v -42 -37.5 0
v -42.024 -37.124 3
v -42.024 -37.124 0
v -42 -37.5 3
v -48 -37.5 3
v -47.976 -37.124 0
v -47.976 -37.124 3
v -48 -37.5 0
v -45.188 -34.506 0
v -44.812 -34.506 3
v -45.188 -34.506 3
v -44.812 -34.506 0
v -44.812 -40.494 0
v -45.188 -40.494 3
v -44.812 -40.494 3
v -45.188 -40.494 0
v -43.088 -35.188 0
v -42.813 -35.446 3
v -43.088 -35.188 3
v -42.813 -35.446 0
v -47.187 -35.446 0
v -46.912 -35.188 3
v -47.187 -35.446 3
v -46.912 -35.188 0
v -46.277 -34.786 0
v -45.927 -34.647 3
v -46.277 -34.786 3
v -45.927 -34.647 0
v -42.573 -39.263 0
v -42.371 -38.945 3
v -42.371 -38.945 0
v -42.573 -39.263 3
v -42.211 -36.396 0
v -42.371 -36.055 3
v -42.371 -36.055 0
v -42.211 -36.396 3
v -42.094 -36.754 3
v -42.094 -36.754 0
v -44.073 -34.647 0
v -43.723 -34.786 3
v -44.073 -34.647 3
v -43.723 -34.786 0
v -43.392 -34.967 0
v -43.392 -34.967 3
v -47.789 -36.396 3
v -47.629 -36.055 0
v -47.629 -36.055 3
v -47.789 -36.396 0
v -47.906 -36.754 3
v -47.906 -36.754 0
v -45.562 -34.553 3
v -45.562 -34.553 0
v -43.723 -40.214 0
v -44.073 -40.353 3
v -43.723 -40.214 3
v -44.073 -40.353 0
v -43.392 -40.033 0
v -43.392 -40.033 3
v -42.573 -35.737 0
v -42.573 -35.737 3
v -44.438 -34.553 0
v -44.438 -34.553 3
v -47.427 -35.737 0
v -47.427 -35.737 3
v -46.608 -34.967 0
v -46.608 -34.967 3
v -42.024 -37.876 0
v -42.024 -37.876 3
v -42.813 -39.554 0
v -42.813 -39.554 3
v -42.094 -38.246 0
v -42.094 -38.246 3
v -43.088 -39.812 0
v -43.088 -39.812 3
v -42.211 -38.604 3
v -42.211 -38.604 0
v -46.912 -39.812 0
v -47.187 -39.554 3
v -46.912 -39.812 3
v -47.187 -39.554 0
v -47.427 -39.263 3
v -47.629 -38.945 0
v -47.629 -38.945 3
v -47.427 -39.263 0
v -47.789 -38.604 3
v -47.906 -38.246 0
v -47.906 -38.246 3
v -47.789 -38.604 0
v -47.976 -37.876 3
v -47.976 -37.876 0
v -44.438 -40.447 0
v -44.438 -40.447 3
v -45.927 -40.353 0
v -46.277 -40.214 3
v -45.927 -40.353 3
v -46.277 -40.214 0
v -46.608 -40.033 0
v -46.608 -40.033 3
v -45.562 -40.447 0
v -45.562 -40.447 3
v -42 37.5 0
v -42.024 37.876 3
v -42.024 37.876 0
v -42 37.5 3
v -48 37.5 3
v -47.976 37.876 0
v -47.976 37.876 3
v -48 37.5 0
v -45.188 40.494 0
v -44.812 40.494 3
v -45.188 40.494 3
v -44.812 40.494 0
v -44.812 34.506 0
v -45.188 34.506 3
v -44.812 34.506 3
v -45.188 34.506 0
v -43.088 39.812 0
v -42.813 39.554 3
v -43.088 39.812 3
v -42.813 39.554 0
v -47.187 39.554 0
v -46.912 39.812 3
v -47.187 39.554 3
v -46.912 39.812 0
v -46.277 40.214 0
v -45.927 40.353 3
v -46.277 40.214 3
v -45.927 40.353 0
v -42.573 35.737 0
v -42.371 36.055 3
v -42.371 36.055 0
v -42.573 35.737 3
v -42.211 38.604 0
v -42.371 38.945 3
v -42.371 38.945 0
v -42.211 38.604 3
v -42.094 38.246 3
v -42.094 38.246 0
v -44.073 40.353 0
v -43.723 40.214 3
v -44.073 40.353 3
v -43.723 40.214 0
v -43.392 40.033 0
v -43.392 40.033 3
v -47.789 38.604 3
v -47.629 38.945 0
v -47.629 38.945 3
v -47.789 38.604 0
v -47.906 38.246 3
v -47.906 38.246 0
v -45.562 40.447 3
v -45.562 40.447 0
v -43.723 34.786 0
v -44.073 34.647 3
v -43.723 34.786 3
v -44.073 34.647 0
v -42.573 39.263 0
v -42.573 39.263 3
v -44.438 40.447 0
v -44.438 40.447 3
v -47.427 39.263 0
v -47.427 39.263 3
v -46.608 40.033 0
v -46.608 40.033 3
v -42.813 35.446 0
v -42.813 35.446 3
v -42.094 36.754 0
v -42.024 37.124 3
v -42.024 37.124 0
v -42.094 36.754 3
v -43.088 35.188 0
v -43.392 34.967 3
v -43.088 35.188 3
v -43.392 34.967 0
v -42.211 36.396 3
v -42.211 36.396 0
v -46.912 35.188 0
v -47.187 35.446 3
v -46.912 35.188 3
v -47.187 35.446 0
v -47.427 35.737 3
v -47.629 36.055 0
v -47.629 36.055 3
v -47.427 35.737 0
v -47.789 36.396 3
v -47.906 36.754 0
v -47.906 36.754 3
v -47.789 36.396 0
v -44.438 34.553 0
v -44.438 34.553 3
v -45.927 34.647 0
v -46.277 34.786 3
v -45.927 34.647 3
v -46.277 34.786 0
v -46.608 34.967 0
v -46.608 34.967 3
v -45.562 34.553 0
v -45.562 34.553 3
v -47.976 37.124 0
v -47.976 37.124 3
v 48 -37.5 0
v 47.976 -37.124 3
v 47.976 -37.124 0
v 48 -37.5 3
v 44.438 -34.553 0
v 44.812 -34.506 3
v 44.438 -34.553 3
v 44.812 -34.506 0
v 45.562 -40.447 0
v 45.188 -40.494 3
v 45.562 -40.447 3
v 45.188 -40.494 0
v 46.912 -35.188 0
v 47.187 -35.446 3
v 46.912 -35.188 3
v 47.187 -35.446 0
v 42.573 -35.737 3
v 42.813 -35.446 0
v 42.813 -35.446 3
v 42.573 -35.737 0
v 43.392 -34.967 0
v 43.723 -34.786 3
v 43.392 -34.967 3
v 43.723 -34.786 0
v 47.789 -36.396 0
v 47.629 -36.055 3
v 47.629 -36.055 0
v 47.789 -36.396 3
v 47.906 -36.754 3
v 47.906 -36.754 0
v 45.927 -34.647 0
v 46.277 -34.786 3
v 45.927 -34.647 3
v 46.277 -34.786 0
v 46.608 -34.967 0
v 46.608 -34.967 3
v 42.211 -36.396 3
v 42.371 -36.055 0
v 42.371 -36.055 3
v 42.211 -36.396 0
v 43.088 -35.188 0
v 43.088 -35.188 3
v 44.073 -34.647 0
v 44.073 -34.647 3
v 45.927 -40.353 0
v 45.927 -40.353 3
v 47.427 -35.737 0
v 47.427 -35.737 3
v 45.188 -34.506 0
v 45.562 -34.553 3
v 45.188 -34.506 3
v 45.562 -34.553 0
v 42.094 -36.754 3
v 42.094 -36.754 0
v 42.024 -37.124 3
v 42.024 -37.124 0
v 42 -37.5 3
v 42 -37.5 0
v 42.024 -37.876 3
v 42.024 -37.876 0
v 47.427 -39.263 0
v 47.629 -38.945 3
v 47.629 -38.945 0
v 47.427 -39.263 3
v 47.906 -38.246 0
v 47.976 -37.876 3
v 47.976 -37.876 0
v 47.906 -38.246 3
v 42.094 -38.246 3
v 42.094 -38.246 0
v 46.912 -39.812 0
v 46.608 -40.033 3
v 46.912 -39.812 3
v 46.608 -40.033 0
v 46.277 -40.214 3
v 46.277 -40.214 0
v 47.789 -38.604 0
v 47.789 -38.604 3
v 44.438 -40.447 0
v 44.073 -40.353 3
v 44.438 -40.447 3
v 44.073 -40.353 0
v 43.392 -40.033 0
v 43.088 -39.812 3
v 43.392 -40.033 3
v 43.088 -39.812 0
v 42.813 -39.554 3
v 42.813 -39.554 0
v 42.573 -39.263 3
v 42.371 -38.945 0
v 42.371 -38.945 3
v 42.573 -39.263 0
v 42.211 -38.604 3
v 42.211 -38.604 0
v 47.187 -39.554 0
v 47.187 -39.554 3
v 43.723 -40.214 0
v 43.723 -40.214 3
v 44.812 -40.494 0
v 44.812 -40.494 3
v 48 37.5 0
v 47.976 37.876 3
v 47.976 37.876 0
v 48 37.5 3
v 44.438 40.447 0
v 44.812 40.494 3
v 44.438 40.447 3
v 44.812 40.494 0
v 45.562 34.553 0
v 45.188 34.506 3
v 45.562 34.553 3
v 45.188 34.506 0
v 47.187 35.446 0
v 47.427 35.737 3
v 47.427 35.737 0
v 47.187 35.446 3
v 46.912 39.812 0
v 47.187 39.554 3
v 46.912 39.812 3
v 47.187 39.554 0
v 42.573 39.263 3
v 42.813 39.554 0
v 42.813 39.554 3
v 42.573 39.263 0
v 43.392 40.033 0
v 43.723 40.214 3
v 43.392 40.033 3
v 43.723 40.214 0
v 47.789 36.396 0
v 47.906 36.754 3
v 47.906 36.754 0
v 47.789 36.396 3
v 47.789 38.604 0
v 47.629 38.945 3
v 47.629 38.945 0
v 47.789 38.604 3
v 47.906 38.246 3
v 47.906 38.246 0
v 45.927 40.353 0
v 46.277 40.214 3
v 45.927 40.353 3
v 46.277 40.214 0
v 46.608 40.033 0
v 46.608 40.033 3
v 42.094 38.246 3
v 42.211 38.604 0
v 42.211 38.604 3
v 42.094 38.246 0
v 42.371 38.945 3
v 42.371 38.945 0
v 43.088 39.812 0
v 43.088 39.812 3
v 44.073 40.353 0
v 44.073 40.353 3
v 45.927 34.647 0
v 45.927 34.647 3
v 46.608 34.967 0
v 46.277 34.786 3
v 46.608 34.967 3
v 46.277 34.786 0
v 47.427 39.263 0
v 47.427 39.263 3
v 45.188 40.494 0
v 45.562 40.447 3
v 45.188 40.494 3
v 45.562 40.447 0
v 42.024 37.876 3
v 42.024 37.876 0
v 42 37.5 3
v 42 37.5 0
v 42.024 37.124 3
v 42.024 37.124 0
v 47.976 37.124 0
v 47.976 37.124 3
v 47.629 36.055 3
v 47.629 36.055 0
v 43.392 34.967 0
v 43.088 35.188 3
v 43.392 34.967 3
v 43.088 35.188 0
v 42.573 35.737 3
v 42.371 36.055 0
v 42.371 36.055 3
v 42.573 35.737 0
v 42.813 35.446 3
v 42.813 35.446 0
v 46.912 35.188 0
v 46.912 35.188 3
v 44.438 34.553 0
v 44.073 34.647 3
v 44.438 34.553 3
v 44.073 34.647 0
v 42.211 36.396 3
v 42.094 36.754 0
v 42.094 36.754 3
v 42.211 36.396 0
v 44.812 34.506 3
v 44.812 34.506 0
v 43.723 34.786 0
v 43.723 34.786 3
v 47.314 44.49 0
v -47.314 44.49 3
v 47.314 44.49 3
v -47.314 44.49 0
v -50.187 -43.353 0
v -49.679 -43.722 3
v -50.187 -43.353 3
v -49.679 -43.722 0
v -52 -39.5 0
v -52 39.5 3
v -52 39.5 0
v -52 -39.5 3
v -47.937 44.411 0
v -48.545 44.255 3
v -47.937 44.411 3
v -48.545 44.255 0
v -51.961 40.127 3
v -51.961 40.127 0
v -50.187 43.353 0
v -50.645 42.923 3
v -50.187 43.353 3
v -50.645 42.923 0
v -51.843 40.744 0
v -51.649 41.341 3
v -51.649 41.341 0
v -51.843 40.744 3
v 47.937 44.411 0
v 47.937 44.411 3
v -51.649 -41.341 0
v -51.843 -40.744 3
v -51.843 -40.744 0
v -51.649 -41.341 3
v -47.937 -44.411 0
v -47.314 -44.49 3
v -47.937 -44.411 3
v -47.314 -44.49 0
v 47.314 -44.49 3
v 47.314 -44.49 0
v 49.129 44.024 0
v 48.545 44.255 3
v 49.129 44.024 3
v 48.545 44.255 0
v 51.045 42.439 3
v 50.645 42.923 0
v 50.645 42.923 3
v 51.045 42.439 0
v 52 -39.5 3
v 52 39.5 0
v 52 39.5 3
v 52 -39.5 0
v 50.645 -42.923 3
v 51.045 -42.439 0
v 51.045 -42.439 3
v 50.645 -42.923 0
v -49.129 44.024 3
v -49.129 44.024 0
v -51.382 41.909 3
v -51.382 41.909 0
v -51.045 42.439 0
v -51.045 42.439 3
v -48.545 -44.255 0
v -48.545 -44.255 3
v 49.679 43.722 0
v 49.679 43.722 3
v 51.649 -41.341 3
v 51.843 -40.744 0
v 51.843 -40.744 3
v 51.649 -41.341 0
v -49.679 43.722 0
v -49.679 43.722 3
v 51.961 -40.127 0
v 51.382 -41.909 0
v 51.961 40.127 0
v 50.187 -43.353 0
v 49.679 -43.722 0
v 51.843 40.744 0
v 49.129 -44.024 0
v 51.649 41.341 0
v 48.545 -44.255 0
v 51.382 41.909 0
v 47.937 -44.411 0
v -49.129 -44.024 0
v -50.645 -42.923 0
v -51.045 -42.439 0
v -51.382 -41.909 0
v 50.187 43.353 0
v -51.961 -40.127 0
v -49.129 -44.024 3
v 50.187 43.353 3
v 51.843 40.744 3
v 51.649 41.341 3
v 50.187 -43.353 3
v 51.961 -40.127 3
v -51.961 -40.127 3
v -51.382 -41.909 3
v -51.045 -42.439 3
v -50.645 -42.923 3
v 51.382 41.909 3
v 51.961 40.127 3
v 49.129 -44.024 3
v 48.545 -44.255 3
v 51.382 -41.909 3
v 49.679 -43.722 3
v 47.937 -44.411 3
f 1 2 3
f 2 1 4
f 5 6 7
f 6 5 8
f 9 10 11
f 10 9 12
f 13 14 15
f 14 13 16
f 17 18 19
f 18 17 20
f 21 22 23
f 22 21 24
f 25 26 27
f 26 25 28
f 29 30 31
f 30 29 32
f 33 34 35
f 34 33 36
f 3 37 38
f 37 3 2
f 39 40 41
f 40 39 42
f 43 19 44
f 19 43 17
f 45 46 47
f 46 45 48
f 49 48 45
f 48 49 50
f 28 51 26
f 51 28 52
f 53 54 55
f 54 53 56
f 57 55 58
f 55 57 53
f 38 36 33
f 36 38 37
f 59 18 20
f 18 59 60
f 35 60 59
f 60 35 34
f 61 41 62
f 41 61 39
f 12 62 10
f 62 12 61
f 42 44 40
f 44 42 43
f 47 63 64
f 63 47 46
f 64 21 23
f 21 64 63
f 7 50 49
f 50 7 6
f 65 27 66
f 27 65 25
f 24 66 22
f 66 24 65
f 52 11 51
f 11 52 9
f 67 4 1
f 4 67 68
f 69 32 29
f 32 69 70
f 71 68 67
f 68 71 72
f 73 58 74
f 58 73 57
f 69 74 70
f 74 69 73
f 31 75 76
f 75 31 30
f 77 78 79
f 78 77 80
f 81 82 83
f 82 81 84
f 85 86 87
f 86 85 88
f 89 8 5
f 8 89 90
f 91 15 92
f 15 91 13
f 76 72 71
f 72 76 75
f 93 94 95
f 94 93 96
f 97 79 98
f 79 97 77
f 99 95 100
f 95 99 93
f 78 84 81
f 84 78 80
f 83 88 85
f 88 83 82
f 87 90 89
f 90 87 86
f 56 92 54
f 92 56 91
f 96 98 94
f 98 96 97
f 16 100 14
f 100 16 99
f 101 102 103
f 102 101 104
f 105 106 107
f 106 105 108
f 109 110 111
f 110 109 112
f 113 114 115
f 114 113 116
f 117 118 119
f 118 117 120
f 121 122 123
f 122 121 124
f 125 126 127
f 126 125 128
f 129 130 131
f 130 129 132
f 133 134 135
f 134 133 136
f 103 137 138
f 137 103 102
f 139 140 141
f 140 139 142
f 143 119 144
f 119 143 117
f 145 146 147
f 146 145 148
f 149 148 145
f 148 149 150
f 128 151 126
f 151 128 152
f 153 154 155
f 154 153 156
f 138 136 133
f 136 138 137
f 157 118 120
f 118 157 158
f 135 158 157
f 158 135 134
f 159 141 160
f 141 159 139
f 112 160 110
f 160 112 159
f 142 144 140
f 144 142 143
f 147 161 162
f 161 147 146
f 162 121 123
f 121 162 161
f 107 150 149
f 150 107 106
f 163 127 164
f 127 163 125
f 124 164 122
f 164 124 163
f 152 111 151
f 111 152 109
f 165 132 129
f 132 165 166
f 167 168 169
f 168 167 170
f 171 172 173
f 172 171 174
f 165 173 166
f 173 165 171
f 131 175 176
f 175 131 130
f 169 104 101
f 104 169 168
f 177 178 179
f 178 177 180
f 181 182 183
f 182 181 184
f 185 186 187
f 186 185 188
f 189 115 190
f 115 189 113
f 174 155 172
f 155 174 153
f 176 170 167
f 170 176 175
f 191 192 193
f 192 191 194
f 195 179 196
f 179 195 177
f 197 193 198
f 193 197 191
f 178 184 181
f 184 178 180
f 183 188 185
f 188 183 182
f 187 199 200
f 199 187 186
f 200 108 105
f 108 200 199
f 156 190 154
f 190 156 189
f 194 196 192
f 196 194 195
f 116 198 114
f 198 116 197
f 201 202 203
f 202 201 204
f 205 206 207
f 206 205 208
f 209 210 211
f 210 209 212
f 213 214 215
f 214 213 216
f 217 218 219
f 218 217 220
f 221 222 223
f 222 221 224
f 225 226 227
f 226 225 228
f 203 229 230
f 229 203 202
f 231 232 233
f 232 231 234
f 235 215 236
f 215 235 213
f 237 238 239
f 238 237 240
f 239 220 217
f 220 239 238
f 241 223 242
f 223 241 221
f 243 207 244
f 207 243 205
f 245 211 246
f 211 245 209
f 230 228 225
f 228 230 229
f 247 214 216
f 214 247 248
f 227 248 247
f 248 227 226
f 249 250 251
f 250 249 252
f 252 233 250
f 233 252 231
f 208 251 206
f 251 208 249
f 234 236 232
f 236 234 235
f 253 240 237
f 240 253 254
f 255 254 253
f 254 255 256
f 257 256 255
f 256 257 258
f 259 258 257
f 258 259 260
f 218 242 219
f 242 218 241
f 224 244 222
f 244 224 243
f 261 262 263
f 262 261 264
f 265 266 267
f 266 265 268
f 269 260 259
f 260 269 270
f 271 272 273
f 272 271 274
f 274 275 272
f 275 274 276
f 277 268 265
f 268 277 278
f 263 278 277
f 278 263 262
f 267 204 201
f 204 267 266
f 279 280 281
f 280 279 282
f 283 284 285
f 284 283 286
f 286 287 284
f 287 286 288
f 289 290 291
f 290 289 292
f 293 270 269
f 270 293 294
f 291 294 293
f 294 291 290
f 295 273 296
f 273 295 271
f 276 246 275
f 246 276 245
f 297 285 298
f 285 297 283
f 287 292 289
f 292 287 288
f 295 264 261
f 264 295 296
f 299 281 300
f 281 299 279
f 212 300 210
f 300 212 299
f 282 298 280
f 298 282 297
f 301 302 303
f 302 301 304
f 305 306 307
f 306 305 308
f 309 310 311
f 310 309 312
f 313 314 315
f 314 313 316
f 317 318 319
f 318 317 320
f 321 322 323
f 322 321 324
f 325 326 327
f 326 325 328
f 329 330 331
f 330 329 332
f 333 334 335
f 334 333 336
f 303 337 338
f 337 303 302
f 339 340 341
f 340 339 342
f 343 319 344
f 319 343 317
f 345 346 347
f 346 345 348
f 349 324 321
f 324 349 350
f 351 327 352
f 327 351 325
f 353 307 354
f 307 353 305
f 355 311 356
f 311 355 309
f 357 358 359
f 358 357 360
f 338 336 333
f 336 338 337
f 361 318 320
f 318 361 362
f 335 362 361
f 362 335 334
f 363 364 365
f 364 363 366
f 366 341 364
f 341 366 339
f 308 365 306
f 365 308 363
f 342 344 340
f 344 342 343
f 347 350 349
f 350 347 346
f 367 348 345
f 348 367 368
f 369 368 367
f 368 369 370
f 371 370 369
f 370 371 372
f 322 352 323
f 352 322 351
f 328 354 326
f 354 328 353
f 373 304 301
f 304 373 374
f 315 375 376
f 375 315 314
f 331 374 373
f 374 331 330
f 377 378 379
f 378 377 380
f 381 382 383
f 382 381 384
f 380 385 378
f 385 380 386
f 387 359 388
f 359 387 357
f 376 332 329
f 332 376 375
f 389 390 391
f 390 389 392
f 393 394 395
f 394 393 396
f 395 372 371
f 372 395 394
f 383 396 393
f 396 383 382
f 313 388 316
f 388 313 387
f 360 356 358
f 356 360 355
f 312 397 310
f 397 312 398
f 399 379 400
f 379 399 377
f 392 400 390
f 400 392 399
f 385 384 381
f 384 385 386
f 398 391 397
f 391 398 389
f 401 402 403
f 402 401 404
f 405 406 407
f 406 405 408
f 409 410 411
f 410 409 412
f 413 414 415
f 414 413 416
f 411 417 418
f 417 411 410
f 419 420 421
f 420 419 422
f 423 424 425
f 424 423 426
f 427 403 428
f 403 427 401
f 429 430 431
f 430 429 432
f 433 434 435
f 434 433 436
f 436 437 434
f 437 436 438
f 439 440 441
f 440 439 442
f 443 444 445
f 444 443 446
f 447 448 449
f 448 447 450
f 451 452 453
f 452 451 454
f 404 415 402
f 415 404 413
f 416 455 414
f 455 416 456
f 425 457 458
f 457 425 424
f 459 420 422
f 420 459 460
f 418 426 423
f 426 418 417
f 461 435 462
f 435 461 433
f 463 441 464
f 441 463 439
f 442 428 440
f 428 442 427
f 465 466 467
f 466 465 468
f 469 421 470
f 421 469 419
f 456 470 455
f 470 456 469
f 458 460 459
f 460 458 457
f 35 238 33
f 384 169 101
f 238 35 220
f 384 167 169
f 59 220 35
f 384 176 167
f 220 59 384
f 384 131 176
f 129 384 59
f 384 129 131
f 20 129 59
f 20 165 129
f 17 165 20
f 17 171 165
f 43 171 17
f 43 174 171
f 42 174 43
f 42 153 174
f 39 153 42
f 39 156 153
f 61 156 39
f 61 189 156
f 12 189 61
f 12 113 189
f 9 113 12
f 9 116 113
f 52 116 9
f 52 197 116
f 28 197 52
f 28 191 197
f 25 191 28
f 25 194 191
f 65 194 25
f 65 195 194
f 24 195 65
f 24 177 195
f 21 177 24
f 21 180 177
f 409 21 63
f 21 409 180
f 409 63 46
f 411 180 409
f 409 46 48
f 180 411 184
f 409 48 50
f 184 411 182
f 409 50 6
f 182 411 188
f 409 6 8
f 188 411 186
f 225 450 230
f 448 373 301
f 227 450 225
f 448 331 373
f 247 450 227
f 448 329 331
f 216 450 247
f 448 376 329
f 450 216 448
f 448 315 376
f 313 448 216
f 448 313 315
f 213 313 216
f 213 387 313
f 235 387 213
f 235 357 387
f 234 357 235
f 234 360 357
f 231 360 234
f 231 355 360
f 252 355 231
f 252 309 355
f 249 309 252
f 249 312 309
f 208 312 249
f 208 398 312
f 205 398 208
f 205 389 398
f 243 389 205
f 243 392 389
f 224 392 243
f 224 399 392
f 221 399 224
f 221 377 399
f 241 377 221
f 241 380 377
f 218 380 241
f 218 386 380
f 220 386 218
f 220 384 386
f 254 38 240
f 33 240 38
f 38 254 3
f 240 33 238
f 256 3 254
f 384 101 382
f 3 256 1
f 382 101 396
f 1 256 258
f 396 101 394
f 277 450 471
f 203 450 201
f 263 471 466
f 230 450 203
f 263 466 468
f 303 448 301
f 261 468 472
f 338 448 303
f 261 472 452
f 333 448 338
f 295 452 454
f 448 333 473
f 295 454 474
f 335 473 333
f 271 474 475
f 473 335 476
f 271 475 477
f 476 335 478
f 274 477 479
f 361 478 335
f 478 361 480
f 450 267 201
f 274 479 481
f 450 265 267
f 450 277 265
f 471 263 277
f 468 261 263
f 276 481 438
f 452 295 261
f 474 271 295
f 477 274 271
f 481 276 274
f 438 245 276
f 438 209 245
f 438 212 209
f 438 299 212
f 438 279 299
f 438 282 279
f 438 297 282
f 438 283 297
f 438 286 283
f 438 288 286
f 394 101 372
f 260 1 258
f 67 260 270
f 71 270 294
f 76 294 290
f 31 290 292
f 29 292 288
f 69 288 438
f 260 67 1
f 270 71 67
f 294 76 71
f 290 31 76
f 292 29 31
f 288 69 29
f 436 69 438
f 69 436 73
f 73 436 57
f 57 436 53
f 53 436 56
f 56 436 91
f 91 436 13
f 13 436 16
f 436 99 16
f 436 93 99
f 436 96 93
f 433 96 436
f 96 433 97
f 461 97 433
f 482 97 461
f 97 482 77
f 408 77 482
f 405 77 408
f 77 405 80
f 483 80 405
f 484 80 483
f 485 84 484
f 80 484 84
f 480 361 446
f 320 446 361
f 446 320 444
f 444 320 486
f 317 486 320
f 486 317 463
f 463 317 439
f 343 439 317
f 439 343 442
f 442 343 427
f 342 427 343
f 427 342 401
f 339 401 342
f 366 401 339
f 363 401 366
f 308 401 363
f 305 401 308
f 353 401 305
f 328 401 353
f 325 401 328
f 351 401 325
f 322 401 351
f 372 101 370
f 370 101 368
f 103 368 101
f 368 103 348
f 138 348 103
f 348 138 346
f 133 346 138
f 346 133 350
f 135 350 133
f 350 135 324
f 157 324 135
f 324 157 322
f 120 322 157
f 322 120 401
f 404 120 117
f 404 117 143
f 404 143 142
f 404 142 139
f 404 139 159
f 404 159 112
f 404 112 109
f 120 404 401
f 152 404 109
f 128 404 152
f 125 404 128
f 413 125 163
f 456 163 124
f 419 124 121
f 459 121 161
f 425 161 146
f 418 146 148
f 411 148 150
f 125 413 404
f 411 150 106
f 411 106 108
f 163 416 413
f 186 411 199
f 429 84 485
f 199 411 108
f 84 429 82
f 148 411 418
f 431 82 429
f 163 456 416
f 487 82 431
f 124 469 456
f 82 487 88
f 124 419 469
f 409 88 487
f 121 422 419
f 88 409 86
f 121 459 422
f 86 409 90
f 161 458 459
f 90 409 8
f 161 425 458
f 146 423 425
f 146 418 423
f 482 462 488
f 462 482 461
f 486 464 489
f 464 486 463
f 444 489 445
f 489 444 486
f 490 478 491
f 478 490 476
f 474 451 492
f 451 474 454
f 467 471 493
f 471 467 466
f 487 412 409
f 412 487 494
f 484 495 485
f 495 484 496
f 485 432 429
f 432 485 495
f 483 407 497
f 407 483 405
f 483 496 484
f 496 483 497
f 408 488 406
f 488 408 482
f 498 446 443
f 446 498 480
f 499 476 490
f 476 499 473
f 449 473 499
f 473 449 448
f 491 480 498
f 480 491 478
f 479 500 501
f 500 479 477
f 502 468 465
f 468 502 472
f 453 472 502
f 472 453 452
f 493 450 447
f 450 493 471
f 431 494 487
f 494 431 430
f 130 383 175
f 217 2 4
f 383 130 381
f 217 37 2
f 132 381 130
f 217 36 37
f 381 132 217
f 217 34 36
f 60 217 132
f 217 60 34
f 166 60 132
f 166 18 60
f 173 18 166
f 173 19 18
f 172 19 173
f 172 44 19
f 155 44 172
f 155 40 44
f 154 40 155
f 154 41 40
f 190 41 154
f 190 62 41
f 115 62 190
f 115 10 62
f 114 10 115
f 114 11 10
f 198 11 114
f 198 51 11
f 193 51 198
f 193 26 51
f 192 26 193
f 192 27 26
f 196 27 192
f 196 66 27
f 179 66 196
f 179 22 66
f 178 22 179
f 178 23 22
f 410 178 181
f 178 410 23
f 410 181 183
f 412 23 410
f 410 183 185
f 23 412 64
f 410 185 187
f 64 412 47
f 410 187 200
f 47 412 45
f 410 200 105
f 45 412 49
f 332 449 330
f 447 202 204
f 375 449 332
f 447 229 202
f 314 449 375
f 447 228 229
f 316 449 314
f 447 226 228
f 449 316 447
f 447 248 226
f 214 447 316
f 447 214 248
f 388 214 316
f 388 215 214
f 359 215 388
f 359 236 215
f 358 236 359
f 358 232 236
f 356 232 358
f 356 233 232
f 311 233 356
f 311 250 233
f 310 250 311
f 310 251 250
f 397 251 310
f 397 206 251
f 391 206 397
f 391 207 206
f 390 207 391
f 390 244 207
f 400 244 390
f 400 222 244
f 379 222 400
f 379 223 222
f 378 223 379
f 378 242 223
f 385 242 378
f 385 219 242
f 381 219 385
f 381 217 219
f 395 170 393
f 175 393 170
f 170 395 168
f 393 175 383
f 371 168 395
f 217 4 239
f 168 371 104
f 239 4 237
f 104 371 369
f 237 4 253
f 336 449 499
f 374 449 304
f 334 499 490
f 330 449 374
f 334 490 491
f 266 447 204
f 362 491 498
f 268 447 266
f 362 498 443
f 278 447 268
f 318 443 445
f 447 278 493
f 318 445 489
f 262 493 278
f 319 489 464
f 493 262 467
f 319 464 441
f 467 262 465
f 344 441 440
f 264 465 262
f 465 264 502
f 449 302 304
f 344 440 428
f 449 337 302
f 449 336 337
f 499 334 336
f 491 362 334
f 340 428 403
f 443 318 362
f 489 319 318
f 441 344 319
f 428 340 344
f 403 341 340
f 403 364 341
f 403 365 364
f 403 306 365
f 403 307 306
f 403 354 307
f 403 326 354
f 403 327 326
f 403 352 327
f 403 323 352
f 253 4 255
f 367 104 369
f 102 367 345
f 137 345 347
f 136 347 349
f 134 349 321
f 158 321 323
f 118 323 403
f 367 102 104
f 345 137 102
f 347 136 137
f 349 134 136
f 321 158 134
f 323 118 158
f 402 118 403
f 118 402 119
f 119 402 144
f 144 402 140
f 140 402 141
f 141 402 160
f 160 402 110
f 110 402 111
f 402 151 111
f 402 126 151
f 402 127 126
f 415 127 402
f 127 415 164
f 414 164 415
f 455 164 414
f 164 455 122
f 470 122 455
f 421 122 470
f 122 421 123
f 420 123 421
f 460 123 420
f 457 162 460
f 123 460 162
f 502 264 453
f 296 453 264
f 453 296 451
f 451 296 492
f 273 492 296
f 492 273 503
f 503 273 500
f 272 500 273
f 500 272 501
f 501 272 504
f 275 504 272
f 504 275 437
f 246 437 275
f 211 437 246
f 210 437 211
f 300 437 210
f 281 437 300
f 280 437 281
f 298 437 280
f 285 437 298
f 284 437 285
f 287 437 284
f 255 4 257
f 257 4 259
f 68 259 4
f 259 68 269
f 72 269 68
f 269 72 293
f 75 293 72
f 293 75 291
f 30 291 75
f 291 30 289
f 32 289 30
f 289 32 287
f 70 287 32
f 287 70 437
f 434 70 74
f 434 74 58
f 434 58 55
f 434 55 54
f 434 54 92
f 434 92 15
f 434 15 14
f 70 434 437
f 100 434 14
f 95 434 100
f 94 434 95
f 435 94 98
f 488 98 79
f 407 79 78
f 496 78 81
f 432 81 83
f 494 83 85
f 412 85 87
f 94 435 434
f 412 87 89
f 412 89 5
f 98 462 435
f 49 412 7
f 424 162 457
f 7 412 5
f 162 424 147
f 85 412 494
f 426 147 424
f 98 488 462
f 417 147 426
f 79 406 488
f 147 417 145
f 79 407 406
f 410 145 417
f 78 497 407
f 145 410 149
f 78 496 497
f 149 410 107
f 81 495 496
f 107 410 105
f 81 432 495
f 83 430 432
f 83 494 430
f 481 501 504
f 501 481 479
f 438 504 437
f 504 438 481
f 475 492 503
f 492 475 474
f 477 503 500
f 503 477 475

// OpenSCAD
$fn = 50;


difference() {
	union() {
		hull() {
			translate(v = [-47.0000000000, 39.5000000000, 0]) {
				cylinder(h = 3, r = 5);
			}
			translate(v = [47.0000000000, 39.5000000000, 0]) {
				cylinder(h = 3, r = 5);
			}
			translate(v = [-47.0000000000, -39.5000000000, 0]) {
				cylinder(h = 3, r = 5);
			}
			translate(v = [47.0000000000, -39.5000000000, 0]) {
				cylinder(h = 3, r = 5);
			}
		}
	}
	union() {
		translate(v = [-45.0000000000, -37.5000000000, -100.0000000000]) {
			cylinder(h = 200, r = 3.0000000000);
		}
		translate(v = [-45.0000000000, 37.5000000000, -100.0000000000]) {
			cylinder(h = 200, r = 3.0000000000);
		}
		translate(v = [45.0000000000, -37.5000000000, -100.0000000000]) {
			cylinder(h = 200, r = 3.0000000000);
		}
		translate(v = [45.0000000000, 37.5000000000, -100.0000000000]) {
			cylinder(h = 200, r = 3.0000000000);
		}
	}
}
